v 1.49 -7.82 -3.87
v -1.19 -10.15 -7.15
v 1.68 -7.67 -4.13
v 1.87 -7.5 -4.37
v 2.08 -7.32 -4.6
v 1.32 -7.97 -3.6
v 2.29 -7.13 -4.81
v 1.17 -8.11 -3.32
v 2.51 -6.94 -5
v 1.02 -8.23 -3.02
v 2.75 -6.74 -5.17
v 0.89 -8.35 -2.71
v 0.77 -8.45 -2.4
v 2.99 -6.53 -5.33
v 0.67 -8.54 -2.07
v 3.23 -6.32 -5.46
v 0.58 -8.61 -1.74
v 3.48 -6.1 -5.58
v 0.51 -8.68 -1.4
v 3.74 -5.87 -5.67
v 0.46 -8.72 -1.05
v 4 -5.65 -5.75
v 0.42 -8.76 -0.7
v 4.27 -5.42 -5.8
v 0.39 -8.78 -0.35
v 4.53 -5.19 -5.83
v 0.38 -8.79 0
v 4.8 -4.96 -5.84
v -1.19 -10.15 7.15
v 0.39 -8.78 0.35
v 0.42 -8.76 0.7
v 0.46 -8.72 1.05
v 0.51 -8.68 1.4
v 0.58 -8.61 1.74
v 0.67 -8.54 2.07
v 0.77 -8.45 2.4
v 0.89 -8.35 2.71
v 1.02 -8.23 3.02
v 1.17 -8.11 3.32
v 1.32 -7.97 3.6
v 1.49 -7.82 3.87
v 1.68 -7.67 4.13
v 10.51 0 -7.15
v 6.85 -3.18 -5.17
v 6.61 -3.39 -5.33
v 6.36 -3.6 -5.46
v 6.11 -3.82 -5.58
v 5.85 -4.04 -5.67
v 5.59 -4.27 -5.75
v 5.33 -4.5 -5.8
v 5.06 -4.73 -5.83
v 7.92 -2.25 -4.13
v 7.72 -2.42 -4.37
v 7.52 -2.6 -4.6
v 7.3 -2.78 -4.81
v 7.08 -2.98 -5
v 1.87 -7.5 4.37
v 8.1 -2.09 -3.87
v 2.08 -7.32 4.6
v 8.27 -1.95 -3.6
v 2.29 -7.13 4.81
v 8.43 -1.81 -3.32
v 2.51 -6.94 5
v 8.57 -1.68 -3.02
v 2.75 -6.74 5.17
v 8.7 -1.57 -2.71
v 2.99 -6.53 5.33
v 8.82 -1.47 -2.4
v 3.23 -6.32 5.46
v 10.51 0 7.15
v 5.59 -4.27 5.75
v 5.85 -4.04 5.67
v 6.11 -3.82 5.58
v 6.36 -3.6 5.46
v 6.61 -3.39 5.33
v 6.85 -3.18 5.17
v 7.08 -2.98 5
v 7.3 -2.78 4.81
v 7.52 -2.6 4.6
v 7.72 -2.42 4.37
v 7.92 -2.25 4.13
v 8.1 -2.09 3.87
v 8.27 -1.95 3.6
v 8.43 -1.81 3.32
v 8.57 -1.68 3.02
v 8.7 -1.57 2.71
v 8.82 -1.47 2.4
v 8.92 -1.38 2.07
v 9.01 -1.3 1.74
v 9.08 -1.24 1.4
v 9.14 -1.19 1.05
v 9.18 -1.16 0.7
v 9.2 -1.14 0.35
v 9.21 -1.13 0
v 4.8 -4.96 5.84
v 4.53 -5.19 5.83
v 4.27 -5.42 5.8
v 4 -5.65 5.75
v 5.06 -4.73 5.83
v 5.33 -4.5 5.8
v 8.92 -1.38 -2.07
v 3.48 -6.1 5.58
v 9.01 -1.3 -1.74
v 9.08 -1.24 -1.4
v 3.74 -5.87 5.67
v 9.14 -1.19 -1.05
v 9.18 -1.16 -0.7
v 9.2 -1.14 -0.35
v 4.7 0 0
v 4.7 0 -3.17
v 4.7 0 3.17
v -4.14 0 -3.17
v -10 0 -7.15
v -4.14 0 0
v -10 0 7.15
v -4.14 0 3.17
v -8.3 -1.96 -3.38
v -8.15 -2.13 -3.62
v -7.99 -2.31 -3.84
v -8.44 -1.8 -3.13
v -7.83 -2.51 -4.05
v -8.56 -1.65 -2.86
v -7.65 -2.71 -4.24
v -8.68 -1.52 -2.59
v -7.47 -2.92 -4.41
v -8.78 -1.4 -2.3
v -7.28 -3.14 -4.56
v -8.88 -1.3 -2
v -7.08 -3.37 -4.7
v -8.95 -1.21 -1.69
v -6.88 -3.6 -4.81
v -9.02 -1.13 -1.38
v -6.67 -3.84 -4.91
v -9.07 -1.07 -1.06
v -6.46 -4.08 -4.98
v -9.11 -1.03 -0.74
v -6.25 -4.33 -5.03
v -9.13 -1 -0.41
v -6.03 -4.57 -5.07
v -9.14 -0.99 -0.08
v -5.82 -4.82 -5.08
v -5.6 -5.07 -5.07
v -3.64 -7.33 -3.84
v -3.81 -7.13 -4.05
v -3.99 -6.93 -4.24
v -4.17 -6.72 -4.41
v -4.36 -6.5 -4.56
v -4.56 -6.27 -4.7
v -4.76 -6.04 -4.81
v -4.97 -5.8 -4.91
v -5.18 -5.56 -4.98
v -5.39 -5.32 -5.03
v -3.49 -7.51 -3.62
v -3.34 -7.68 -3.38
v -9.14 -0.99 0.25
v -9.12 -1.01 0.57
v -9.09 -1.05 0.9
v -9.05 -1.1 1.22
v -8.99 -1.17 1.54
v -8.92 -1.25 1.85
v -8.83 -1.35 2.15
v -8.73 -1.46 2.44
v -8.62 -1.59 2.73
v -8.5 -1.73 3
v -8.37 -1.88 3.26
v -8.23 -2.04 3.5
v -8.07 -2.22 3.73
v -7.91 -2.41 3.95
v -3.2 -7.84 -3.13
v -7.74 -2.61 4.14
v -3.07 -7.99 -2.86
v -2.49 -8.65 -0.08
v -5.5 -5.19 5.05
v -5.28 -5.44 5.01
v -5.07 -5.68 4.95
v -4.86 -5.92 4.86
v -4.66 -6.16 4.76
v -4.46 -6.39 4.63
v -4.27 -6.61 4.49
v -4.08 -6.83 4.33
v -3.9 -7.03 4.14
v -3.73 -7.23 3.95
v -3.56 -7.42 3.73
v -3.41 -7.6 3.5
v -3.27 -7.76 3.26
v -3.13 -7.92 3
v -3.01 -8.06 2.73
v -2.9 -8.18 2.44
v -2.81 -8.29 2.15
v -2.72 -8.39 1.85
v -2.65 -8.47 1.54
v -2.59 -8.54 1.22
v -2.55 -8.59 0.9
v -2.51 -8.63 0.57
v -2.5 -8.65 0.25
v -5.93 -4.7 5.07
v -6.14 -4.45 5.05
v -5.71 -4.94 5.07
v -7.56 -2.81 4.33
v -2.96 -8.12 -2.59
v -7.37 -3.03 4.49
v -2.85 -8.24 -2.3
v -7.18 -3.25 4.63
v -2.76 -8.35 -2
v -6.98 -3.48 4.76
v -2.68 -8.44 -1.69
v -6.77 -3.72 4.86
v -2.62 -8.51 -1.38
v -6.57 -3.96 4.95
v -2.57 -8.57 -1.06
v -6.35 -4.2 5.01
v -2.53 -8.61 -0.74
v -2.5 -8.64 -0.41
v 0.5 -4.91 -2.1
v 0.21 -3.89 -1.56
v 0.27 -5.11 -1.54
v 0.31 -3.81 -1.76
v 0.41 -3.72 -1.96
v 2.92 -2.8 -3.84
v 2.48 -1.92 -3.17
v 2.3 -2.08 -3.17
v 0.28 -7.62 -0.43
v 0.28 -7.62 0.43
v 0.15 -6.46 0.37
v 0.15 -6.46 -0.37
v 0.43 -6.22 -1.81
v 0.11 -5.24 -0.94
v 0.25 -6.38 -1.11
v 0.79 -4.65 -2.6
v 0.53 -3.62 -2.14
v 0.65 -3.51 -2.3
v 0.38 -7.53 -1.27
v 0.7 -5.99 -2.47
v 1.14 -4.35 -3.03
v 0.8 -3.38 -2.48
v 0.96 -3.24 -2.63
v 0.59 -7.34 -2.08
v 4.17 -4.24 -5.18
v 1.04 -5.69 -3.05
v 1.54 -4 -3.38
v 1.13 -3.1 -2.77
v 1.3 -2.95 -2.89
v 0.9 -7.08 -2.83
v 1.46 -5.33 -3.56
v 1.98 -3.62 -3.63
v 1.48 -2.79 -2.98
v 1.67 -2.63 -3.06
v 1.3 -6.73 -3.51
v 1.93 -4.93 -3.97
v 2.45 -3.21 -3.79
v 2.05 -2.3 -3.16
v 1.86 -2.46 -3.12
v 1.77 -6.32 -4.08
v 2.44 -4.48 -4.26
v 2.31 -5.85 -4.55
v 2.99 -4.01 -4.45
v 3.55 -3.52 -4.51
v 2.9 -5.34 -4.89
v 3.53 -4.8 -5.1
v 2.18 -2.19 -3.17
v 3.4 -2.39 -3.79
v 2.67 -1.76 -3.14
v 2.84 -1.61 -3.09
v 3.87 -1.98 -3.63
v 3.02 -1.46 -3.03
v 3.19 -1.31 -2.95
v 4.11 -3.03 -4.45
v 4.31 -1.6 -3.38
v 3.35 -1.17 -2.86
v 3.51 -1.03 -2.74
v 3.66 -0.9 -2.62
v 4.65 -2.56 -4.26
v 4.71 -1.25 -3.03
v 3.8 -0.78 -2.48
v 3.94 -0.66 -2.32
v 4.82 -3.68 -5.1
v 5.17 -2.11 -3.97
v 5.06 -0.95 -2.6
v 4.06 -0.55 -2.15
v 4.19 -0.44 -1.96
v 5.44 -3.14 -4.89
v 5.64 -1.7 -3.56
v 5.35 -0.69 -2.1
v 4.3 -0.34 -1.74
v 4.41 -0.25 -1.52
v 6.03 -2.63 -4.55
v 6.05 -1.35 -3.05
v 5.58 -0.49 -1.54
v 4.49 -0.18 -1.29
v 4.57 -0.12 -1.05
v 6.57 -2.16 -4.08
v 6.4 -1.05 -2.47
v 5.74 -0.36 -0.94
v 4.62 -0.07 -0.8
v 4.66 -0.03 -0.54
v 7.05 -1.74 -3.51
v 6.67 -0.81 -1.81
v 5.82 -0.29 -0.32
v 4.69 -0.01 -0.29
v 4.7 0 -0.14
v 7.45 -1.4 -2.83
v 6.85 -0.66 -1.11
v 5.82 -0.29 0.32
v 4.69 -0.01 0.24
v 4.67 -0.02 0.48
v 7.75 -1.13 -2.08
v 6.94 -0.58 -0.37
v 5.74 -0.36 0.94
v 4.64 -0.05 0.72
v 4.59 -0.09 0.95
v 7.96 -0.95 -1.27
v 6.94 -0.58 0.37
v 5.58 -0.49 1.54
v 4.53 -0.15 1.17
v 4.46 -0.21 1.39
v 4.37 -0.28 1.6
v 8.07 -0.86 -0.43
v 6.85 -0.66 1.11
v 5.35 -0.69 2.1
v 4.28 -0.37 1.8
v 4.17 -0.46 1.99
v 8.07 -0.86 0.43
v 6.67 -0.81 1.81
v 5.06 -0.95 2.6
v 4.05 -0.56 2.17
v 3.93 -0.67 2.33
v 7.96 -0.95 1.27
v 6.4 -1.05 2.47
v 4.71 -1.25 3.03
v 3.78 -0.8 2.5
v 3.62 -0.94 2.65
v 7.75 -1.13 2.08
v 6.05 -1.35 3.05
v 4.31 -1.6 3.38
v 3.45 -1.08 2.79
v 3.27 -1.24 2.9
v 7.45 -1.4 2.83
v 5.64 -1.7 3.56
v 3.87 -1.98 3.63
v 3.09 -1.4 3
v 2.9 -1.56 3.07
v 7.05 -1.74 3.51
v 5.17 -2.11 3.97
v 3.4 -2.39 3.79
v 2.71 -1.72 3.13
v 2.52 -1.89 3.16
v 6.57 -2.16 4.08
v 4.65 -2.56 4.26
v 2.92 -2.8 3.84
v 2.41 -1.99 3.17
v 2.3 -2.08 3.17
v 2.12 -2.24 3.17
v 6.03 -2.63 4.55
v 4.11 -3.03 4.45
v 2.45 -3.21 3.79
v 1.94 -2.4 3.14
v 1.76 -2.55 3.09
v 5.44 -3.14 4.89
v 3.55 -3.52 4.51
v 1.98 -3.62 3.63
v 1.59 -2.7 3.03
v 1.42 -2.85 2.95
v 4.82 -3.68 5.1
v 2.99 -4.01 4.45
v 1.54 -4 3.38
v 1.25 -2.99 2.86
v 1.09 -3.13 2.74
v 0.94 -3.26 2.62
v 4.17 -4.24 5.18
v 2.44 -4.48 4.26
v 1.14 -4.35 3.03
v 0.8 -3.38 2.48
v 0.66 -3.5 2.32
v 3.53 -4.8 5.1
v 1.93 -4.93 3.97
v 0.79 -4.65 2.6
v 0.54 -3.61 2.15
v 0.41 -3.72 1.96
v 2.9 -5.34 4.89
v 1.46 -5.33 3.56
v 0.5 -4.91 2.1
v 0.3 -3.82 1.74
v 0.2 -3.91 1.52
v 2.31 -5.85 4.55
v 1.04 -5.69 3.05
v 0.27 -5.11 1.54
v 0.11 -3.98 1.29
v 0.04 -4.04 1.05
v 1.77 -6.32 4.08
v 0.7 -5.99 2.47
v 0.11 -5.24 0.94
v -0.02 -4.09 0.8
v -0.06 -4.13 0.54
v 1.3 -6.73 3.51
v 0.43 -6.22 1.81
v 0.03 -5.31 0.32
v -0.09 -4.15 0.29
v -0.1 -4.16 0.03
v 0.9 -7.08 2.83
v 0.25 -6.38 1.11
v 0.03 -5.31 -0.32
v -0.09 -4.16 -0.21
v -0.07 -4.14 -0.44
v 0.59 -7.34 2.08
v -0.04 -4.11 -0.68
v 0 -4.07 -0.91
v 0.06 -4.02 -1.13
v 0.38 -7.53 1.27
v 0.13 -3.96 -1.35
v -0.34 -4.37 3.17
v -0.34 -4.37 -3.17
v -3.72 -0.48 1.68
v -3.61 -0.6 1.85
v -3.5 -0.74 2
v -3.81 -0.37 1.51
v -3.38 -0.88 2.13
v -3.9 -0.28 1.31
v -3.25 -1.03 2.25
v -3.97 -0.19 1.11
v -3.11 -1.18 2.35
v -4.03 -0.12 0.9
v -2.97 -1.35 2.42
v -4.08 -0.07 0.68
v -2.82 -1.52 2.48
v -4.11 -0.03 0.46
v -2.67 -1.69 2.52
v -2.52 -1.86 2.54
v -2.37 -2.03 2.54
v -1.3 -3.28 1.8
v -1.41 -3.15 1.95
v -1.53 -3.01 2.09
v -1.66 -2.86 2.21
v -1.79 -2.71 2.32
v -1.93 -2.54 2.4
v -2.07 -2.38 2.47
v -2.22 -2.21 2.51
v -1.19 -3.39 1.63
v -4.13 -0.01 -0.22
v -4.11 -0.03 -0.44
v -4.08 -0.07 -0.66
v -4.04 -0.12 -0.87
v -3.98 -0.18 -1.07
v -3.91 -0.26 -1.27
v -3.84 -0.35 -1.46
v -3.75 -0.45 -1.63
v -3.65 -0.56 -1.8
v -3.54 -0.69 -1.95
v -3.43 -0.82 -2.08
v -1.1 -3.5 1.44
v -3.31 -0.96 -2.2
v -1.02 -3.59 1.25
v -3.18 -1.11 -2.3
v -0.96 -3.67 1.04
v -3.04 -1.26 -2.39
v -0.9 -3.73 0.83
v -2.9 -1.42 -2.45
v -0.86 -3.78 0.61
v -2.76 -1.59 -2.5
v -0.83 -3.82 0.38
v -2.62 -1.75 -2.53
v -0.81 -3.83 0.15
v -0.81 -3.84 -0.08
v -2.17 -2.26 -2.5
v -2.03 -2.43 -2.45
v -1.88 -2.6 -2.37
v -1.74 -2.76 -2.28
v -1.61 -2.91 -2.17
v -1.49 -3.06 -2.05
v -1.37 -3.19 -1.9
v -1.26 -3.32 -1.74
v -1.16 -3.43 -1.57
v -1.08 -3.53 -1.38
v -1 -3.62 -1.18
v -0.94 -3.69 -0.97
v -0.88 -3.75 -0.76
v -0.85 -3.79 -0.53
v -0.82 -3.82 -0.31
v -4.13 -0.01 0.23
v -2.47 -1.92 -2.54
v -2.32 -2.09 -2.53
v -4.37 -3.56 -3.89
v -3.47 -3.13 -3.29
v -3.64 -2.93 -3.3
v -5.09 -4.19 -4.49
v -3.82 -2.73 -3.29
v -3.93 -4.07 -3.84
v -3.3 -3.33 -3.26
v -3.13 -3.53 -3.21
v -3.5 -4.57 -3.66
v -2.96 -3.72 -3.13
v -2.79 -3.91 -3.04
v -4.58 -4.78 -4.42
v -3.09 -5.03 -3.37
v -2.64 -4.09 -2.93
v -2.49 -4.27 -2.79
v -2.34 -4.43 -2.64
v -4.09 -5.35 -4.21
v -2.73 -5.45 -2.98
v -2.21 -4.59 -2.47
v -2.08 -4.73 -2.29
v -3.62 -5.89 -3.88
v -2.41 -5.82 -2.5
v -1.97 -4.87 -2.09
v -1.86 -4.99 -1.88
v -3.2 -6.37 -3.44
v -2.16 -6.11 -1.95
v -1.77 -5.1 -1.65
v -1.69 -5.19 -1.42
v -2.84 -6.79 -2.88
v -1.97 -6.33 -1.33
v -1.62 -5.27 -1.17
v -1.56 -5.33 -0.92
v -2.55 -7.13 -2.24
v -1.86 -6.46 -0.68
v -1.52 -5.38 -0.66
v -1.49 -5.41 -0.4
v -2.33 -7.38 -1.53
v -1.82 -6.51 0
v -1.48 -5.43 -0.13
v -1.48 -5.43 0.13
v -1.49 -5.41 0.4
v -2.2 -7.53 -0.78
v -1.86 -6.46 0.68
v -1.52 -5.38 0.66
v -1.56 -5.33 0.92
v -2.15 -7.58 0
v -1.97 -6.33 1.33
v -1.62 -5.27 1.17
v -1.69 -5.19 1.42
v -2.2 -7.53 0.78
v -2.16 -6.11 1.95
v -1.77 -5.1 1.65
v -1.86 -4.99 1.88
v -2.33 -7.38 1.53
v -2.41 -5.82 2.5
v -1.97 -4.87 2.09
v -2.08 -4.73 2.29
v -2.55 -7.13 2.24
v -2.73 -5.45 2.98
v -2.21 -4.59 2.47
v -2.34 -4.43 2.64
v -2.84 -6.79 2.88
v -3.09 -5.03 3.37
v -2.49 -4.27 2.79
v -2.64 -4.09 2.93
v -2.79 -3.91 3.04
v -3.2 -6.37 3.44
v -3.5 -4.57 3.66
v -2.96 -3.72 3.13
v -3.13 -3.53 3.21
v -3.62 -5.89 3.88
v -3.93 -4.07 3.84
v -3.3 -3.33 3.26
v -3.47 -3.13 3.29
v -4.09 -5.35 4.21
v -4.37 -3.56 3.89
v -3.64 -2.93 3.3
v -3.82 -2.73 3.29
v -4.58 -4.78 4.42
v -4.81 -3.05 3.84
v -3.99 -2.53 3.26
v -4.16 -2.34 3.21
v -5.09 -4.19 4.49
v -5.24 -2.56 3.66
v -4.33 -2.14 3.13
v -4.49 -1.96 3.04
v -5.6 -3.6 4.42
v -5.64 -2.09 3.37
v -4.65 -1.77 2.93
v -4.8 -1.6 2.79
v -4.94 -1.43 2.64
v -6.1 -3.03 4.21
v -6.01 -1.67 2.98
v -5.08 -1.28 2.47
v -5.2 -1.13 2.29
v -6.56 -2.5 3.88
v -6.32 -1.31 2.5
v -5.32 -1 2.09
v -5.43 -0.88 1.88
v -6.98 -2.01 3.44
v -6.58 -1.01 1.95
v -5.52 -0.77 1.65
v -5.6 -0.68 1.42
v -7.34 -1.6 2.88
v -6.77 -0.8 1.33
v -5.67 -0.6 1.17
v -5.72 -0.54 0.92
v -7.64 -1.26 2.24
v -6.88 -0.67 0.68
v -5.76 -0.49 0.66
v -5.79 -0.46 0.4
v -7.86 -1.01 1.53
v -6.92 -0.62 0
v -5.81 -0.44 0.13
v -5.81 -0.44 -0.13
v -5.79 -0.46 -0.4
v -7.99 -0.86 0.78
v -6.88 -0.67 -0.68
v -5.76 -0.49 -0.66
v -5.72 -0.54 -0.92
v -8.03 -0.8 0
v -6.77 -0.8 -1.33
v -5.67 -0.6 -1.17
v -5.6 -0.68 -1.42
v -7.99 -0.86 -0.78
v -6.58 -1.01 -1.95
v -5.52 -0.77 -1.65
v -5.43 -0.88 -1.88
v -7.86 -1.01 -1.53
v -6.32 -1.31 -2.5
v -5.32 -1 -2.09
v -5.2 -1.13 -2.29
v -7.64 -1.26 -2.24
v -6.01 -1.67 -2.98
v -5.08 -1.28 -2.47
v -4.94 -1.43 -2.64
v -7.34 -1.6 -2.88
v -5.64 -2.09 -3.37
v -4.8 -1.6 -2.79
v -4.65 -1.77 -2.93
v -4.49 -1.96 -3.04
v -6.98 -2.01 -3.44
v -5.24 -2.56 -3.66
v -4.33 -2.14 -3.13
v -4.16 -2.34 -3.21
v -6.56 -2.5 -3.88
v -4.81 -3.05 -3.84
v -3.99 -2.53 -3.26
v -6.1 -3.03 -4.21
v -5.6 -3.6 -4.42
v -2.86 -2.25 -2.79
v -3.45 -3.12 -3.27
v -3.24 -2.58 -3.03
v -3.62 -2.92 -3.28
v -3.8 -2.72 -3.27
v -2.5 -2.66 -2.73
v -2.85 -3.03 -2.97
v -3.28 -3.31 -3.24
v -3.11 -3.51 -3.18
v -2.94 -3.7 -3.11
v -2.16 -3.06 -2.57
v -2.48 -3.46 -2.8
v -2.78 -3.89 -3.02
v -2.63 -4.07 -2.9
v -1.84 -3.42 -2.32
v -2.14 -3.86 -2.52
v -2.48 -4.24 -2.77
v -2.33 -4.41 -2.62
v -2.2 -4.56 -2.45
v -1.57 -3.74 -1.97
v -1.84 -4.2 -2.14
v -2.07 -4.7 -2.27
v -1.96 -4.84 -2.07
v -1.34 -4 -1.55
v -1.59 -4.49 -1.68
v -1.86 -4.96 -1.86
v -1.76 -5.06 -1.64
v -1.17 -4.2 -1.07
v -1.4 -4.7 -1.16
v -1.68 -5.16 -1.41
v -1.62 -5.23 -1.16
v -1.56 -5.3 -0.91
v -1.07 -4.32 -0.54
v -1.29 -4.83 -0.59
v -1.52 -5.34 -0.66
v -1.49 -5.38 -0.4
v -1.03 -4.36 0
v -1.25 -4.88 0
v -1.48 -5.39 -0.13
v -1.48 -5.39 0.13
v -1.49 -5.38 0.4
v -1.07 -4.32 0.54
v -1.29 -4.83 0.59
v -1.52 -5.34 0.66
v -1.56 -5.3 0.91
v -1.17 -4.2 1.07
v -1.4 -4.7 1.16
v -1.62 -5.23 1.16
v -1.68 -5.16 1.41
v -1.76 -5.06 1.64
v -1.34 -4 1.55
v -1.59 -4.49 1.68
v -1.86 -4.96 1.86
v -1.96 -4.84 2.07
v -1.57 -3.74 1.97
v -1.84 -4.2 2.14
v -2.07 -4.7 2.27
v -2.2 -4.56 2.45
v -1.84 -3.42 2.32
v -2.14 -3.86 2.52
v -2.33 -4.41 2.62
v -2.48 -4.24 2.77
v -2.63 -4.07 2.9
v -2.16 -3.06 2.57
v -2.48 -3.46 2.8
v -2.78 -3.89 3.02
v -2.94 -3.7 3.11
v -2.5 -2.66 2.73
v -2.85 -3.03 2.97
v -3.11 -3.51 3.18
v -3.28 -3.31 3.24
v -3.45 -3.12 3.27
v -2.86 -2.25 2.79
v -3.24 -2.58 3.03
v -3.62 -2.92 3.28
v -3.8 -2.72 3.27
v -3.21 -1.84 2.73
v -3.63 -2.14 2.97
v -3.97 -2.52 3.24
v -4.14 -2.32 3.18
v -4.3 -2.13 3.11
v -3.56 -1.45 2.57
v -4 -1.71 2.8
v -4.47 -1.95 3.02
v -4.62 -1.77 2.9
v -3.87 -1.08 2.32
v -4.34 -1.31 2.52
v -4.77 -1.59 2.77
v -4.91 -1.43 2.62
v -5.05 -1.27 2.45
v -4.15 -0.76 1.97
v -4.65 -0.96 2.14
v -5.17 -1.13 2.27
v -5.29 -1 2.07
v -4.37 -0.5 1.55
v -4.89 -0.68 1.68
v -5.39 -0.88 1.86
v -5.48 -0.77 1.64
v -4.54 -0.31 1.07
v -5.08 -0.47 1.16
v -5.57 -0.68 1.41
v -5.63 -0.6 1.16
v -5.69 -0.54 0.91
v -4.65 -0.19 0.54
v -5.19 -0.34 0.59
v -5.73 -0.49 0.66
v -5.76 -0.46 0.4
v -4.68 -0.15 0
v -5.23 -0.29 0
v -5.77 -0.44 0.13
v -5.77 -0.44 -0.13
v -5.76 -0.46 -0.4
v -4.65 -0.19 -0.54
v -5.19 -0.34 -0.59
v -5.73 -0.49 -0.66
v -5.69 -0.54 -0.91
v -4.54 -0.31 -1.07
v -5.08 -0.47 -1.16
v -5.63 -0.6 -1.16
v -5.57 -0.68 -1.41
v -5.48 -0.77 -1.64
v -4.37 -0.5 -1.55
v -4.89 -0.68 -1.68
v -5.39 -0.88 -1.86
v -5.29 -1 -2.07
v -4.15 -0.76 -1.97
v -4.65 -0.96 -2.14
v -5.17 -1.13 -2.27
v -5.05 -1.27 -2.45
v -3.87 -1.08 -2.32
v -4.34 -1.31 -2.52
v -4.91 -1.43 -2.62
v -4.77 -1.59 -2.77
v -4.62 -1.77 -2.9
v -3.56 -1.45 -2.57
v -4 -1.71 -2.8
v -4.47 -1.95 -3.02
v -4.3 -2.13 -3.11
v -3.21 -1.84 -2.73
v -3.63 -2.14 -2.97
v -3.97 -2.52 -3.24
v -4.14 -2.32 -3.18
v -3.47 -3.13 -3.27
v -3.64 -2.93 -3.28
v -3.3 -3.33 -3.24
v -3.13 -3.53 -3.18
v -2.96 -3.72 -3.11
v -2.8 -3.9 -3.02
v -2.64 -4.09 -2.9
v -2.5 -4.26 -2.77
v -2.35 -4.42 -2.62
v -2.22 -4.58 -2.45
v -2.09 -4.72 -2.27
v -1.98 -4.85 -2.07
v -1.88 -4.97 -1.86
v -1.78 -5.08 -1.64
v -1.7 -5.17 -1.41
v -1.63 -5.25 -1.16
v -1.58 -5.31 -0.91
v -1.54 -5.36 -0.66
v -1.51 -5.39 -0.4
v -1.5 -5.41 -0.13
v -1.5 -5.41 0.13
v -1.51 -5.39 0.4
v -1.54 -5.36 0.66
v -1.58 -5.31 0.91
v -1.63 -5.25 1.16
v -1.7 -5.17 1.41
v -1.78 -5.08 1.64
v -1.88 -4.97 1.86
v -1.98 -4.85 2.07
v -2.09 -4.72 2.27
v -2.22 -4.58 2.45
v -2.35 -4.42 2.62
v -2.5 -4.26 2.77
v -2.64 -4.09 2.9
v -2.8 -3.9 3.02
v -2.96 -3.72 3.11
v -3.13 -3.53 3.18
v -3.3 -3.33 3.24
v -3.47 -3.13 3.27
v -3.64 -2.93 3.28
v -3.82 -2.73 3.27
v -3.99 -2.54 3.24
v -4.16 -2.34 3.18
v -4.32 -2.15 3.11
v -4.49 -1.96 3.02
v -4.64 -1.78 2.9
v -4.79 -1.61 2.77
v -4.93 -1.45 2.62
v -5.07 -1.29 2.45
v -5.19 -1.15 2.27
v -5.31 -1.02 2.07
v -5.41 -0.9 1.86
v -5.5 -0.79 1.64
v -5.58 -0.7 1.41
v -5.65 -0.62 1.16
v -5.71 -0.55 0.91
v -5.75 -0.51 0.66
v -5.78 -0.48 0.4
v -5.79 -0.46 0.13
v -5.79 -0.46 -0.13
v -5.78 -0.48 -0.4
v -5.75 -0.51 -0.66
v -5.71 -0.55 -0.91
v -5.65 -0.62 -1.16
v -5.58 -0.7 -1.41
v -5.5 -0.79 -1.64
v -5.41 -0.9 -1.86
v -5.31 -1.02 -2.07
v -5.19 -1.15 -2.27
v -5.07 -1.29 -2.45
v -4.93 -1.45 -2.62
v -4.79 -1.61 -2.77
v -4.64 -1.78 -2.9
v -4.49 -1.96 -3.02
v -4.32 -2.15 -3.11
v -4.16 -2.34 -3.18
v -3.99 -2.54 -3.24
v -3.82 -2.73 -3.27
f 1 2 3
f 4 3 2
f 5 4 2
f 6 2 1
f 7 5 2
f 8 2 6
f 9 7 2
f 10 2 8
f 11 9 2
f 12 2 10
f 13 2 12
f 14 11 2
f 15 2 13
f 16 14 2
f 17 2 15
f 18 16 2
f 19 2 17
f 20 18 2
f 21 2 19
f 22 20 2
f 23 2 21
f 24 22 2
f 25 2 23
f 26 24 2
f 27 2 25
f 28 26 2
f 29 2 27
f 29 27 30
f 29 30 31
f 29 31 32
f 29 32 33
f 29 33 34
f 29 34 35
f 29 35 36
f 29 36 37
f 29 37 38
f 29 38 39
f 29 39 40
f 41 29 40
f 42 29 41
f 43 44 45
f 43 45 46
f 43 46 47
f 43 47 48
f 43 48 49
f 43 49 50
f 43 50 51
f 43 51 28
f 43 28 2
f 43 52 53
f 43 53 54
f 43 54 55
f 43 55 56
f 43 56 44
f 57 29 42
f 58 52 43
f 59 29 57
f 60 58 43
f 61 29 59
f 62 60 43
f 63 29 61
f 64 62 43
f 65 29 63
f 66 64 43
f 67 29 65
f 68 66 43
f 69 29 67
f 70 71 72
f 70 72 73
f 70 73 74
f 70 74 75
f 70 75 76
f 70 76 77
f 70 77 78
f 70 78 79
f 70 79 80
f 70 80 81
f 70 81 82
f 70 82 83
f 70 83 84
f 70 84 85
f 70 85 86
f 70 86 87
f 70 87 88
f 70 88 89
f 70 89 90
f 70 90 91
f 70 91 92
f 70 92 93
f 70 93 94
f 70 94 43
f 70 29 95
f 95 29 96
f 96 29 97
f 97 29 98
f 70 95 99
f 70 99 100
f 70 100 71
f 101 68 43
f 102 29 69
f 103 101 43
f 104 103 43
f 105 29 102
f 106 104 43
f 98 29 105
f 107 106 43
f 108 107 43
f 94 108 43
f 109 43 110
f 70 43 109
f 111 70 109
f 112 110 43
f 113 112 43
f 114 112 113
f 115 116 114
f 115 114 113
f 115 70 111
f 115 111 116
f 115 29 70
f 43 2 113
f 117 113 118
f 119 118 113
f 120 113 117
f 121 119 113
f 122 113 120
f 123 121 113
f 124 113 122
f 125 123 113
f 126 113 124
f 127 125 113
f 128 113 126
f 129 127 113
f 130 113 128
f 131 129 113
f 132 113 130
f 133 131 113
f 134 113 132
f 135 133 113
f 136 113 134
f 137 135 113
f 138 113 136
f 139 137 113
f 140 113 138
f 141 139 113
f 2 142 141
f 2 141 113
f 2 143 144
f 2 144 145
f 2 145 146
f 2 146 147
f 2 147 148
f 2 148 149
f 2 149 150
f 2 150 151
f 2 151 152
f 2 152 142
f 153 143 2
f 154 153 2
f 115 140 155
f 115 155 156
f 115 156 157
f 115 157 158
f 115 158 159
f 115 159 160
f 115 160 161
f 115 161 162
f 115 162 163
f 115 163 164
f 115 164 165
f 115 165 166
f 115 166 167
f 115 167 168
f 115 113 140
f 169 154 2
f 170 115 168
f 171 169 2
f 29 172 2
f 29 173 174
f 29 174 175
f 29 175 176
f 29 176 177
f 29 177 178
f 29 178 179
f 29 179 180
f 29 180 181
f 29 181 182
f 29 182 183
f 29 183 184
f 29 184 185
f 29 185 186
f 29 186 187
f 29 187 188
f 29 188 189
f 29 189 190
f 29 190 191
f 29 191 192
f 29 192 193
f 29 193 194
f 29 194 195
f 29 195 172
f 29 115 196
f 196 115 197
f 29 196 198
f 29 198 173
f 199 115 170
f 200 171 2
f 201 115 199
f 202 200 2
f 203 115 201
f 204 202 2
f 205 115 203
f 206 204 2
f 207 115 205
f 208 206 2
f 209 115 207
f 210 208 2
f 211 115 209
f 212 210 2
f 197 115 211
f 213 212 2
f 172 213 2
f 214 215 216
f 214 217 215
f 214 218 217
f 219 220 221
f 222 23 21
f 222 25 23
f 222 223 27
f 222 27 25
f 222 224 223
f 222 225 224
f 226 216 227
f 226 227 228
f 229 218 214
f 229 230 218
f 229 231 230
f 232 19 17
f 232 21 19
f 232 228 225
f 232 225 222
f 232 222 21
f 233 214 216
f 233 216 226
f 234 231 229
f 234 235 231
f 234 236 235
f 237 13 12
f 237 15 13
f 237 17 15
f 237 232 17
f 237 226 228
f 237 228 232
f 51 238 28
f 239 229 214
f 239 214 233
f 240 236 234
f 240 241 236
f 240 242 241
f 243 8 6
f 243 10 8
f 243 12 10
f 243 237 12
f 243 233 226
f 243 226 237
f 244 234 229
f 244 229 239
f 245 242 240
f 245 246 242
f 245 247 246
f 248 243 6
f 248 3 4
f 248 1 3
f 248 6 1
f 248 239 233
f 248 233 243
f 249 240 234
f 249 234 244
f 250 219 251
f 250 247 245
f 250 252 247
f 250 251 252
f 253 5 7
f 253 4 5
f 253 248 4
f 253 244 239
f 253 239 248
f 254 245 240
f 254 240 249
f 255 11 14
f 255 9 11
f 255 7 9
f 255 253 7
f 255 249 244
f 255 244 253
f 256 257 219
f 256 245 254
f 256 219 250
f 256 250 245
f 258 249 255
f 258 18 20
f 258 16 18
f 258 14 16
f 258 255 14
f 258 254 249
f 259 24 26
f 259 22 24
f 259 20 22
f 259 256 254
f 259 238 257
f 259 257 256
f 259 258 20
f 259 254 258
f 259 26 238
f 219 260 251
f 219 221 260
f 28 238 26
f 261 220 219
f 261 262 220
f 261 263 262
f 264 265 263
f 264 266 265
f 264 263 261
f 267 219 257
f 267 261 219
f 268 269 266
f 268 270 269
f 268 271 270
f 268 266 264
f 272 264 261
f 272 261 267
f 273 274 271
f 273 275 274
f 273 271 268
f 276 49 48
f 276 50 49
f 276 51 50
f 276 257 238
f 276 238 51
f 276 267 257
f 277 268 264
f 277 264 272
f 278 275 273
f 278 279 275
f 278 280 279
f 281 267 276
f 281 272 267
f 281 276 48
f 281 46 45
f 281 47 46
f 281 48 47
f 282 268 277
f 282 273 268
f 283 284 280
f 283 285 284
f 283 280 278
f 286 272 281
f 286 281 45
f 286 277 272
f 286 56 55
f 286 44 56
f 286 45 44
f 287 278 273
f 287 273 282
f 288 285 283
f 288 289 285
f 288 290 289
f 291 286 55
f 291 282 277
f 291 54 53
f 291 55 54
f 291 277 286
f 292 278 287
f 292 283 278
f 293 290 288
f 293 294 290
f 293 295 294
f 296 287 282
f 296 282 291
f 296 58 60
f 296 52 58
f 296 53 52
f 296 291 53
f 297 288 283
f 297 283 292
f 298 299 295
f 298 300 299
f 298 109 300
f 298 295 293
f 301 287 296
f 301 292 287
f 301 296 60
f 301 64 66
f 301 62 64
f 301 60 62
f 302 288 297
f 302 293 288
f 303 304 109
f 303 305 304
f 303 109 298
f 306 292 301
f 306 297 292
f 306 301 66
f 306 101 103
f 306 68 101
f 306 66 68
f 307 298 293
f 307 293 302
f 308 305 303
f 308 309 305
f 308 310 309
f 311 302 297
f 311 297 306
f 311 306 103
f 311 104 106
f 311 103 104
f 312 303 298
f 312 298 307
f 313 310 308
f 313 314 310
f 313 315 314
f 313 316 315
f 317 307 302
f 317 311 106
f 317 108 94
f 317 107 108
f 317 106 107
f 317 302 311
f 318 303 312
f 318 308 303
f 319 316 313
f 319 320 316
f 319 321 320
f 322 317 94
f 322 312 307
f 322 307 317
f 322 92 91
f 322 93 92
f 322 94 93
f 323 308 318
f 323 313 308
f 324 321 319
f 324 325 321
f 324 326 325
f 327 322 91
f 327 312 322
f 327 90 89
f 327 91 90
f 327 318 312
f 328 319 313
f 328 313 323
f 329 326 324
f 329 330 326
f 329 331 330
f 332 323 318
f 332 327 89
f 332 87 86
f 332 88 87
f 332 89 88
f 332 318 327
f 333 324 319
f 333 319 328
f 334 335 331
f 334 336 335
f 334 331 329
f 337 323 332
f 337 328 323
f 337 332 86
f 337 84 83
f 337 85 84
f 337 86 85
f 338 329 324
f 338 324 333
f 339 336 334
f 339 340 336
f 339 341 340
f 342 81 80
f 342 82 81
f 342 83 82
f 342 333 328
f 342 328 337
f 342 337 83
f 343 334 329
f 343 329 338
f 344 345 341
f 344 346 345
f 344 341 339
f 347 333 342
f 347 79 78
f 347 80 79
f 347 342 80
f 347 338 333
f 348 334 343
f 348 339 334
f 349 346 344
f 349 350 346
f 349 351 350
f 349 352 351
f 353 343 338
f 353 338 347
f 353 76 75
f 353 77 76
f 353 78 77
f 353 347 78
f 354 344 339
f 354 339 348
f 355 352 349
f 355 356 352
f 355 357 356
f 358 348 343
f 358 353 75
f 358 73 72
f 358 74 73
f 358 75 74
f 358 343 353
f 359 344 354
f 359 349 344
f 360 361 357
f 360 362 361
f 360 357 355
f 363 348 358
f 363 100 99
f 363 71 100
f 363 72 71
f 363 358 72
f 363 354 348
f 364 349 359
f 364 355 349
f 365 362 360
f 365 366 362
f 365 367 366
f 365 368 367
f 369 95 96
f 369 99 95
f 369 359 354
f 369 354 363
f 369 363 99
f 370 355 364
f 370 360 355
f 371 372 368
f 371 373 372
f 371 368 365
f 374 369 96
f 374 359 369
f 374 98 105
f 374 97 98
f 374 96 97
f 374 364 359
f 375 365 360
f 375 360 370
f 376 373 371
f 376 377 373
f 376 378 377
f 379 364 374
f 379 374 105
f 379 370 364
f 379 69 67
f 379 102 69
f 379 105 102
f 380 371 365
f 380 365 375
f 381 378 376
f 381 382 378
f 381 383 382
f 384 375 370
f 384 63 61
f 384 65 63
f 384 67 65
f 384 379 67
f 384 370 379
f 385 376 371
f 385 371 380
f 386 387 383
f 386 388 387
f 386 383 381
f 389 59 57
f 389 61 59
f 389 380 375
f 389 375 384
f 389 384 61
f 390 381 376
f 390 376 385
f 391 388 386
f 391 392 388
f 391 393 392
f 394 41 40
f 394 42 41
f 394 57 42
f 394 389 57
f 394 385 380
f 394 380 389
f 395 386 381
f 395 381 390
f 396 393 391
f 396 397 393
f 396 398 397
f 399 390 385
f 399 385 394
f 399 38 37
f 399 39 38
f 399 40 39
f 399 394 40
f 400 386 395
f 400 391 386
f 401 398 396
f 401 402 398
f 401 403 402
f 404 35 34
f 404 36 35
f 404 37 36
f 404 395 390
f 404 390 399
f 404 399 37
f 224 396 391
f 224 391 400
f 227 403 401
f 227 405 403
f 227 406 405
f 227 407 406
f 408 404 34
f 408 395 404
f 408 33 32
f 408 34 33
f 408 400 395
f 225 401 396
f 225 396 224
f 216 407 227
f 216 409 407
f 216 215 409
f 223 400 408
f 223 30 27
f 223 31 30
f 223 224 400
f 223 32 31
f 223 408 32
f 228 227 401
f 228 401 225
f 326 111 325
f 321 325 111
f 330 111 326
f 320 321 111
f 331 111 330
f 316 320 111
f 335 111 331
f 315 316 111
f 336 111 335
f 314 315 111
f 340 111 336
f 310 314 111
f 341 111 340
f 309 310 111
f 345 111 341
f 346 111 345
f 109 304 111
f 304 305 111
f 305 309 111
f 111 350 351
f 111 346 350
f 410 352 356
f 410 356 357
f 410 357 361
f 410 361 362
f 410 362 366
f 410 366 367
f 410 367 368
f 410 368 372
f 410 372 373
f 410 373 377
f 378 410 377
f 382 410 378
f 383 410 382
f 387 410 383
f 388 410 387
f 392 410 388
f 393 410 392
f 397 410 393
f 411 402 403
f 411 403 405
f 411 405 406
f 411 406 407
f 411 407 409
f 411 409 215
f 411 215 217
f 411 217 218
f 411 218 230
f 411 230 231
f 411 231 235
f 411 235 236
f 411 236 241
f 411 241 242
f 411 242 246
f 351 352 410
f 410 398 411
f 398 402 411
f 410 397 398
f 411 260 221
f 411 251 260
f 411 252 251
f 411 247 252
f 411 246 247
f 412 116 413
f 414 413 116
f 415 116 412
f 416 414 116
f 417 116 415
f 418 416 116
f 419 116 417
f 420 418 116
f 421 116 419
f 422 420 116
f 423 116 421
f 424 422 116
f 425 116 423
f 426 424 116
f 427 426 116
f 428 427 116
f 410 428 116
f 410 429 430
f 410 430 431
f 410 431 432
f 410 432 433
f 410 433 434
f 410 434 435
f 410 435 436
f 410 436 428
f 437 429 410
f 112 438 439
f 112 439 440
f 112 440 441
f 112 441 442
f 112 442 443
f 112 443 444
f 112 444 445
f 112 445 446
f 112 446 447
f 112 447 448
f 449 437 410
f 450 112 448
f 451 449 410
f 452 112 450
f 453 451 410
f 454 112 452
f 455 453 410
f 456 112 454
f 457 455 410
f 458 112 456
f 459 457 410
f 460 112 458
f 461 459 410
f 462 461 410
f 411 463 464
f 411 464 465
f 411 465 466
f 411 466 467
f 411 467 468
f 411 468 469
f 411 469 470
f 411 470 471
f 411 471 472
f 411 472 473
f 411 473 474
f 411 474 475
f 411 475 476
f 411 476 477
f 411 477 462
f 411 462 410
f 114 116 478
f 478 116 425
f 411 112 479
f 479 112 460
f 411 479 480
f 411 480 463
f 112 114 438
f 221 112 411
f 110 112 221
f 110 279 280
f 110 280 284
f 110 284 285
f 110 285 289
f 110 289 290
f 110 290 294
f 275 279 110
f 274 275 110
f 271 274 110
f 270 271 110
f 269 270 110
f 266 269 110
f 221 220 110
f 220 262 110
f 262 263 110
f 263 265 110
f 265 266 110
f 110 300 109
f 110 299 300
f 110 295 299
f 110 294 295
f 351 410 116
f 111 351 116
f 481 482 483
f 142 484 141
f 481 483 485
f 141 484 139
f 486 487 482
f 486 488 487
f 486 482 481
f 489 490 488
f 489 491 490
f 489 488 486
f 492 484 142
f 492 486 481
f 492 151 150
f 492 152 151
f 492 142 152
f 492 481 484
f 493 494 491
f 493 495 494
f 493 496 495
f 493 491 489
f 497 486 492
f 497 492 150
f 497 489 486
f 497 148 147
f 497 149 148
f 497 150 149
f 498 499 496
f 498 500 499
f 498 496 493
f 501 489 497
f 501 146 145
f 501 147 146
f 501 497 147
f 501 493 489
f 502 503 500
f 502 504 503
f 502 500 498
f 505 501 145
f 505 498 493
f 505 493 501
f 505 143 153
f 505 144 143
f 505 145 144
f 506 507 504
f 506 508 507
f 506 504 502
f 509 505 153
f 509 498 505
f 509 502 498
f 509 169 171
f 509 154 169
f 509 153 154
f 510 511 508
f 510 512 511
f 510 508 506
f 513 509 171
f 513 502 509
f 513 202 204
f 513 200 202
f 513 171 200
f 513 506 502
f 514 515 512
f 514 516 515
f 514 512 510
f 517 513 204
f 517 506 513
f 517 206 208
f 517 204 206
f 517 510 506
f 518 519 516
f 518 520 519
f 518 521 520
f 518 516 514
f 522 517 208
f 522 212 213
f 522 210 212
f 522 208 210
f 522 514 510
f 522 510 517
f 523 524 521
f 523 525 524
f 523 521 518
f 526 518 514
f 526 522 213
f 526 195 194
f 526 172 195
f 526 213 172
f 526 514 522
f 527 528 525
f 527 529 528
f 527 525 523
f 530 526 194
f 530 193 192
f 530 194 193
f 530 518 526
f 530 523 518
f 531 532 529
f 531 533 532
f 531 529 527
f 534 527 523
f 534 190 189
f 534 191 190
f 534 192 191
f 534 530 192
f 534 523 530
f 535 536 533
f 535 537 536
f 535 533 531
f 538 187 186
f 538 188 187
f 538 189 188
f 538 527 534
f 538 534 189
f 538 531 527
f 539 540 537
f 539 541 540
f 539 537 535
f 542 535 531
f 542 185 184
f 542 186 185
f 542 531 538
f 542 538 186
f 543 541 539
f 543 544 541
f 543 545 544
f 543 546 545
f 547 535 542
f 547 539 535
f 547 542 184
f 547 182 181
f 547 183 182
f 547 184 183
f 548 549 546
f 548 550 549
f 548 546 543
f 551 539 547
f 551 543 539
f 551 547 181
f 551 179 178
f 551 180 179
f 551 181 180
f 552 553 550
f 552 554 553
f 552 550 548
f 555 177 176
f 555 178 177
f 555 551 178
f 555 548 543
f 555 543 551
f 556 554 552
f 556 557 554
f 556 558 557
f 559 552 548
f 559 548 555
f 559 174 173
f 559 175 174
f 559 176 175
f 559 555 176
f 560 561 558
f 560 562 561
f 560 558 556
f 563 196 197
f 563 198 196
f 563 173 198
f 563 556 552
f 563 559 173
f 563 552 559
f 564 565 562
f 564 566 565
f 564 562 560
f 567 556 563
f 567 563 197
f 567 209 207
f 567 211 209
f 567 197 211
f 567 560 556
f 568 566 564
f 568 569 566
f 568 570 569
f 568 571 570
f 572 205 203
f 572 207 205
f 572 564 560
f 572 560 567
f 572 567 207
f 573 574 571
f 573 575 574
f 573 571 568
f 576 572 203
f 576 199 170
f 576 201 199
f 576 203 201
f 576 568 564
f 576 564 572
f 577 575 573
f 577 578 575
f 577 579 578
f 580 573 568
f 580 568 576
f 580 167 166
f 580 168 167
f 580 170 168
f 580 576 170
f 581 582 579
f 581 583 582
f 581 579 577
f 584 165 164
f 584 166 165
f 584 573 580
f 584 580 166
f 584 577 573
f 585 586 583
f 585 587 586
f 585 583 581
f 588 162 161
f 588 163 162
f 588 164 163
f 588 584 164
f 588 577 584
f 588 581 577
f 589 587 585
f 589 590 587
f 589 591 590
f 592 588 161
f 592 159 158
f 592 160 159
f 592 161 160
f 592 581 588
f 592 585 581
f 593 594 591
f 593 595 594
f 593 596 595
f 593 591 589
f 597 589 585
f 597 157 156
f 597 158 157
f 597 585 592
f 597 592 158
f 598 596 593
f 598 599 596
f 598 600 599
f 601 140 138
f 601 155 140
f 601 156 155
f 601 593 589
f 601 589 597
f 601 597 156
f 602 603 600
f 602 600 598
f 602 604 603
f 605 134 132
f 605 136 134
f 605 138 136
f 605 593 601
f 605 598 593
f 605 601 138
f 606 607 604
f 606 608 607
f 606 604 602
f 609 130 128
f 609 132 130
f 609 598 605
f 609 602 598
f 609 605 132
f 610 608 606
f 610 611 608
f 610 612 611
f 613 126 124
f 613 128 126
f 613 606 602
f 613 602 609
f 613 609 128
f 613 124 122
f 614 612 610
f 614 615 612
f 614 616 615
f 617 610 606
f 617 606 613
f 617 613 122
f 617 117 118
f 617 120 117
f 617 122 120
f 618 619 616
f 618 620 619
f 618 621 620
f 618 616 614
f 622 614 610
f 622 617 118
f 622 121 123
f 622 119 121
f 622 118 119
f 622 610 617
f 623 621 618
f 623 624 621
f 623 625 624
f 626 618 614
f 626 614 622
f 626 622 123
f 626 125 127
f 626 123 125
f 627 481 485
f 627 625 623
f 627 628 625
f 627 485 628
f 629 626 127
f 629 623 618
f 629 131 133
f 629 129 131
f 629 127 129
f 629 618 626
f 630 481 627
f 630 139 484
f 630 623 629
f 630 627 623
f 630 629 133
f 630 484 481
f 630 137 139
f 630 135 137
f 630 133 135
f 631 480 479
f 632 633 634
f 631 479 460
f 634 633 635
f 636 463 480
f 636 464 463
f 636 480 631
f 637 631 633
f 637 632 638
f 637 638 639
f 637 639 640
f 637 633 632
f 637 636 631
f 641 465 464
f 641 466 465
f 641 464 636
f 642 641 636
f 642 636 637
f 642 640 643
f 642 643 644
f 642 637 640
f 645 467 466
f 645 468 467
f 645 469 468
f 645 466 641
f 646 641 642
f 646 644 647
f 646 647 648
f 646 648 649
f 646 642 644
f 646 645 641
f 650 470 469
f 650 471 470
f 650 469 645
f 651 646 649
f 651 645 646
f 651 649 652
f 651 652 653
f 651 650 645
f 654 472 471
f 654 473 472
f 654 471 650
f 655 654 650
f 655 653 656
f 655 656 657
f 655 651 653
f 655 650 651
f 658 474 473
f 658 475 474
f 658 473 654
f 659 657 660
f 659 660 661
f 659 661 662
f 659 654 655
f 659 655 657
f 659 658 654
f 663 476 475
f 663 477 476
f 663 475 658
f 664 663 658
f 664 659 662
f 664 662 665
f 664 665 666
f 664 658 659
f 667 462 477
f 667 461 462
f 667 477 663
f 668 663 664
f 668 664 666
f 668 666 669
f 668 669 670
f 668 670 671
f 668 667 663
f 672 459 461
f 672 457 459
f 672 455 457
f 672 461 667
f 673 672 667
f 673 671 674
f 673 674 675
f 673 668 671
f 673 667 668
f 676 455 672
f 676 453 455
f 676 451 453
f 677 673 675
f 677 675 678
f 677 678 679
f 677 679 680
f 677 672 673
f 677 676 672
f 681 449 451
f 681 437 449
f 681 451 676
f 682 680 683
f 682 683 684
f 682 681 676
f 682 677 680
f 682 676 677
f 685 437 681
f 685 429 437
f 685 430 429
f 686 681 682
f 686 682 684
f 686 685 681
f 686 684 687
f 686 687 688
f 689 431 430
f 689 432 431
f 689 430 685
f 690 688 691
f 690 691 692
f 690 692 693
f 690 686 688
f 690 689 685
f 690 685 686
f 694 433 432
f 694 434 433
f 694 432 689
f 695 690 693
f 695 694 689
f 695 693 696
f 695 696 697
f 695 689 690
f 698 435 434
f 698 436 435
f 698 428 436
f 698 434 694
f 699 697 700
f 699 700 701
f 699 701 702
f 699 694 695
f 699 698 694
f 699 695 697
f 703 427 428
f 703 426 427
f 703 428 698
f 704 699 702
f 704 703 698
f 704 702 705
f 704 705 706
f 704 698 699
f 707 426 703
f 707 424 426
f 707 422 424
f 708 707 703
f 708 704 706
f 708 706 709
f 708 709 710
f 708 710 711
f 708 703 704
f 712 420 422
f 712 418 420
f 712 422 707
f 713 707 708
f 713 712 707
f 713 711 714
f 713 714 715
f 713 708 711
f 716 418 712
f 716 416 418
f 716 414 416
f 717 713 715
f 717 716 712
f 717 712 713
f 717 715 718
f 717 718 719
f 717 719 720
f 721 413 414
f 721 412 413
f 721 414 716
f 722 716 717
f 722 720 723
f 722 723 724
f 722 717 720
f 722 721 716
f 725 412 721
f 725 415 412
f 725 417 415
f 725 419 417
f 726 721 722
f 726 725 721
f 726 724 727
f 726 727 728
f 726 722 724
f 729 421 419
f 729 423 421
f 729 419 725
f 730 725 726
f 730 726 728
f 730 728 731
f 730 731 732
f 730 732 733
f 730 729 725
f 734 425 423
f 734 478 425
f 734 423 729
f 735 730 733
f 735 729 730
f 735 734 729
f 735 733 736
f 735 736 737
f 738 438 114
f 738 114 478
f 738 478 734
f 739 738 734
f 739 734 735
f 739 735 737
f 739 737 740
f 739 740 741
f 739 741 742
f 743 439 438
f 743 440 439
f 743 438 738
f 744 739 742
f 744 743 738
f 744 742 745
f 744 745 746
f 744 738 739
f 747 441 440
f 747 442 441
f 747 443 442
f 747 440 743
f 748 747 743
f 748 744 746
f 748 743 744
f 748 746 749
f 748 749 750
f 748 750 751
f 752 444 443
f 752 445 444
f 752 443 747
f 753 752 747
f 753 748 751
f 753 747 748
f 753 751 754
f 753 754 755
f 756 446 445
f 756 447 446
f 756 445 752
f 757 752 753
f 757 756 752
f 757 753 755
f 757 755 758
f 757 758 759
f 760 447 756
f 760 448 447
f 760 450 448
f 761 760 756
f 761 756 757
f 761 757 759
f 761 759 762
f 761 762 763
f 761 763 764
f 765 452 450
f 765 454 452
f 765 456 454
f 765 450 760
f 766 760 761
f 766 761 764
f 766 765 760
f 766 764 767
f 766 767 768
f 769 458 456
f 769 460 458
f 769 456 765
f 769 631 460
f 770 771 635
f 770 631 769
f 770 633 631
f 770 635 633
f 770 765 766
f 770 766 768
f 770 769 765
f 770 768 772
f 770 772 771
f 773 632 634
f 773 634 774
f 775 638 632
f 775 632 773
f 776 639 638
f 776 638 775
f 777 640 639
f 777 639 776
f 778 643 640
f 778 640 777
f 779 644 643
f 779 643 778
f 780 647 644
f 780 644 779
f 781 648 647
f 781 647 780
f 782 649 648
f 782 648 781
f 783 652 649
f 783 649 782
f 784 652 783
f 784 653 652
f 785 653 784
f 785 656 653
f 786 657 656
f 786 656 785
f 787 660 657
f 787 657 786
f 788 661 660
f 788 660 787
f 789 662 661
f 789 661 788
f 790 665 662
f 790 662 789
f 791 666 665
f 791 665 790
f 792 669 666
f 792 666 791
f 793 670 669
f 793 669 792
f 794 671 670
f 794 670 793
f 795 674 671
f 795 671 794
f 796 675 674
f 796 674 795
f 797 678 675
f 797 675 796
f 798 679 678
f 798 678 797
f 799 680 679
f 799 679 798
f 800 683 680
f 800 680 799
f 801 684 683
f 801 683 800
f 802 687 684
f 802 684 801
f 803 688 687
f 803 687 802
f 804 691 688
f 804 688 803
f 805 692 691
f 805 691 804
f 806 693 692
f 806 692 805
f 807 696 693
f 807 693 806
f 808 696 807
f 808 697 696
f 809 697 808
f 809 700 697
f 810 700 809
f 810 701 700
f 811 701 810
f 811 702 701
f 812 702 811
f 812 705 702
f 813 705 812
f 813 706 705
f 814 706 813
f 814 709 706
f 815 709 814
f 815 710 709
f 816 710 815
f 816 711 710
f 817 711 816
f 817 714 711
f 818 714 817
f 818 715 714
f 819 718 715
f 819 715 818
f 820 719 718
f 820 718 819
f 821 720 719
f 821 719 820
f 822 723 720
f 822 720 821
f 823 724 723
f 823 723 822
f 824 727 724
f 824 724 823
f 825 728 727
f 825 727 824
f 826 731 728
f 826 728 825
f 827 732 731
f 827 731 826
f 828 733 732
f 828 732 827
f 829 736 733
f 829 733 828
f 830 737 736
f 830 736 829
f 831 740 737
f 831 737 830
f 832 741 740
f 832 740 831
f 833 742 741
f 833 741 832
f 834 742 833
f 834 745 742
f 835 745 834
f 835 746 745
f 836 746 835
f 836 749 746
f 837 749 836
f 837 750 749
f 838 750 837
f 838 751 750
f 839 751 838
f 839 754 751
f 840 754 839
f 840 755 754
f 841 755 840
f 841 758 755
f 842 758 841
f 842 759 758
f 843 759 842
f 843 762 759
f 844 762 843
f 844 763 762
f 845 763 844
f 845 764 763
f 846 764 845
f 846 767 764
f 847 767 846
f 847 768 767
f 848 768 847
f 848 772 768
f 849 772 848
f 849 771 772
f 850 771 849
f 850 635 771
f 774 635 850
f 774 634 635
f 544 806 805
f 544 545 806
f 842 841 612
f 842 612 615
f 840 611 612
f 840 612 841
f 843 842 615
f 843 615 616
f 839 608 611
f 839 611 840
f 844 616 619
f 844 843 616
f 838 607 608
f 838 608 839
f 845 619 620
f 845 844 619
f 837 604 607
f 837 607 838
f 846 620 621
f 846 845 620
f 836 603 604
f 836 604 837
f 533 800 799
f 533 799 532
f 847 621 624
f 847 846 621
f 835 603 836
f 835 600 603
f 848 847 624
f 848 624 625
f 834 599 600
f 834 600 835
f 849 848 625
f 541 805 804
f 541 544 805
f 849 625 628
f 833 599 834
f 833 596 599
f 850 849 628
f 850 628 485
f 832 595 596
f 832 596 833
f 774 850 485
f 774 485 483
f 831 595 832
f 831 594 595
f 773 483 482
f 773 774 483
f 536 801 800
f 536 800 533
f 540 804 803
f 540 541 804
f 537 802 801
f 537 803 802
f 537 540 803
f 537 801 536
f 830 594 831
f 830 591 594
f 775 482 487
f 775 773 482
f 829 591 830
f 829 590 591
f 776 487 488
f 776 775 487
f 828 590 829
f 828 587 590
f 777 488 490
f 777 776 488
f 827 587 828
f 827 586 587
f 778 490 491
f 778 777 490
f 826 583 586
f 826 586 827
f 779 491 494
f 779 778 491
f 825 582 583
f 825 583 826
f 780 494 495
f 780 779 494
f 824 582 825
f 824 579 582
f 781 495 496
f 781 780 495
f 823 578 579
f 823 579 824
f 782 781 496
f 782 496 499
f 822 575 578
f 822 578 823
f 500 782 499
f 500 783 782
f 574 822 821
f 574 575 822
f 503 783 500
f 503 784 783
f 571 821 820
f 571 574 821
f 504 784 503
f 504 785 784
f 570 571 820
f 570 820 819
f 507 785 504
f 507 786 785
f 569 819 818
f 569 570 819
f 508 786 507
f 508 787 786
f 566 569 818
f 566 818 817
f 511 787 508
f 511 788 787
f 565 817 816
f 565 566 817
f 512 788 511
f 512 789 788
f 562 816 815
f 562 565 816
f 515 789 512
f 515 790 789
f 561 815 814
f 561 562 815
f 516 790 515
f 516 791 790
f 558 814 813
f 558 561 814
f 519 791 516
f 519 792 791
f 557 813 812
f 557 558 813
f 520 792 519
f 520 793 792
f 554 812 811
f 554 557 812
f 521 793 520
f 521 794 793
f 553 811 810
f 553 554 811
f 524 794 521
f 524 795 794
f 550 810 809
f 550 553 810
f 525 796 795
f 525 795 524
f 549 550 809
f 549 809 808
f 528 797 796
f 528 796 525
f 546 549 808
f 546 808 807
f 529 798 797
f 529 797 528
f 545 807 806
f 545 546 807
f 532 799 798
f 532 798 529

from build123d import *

# Parameters (mm, degrees)
BOSS_EXTRUDE1_START = -7.151569
BOSS_EXTRUDE1_DEPTH = 14.303137569
CAVITY3_START       = -3.125287666
CAVITY3_DEPTH       = 9.3420001
CAVITY3_START_2     = -7.554089613
CAVITY3_2_OUTLINE_R = 3.278779553
CAVITY3_2_DEPTH     = 2.904801847
CAVITY3_START_3     = 0.374712334
CAVITY3_3_DEPTH     = 2.960969152
CAVITY3_START_4     = -3.175
CAVITY3_4_DEPTH     = 6.35


with BuildPart() as part:
    # Sketch1 → Boss-Extrude1 (new body)
    with BuildSketch(Plane.XY.offset(BOSS_EXTRUDE1_START)):
        Polygon((-10, 0), (10.513602901, 0), (-1.192334822, -10.153914519), align=None)
    extrude(amount=BOSS_EXTRUDE1_DEPTH)

    # Cavity3: read off the stored shape, not the designer's step
    # Cavity3 outline → Cavity3 (cut)
    with BuildSketch(Plane(origin=(0, 0, 0), x_dir=(0.6552536158947596, -0.7554089613294528, 0), z_dir=(0.7554089613294528, 0.6552536158947598, 0)).offset(CAVITY3_START)):
        with BuildLine():
            Line((3.079076317, -3.175), (3.079076317, 3.175))
            Line((3.079076317, 3.175), (-0.989318671, 3.175))
            ThreePointArc((-0.989318671, 3.175), (-3.449703236, 0), (-0.989318671, -3.175))
            Line((-0.989318671, -3.175), (3.079076317, -3.175))
        make_face()
    extrude(amount=CAVITY3_DEPTH, mode=Mode.SUBTRACT)

    # Cavity3 2 outline → Cavity3 2 (cut)
    with BuildSketch(Plane(origin=(0, 0, 0), x_dir=(0.6552536158947596, -0.7554089613294528, 0), z_dir=(0.7554089613294528, 0.6552536158947598, 0)).offset(CAVITY3_START_2)):
        with Locations((-0.170923683, 0)):
            Circle(CAVITY3_2_OUTLINE_R)
    extrude(amount=CAVITY3_2_DEPTH, mode=Mode.SUBTRACT)

    # Cavity3 3 outline → Cavity3 3 (cut)
    with BuildSketch(Plane(origin=(0, 0, 0), x_dir=(0.6552536158947596, -0.7554089613294528, 0), z_dir=(0.7554089613294528, 0.6552536158947598, 0)).offset(CAVITY3_START_3)):
        with BuildLine():
            Line((3.079076317, 0.433468981), (3.079076317, -0.433468981))
            ThreePointArc((3.079076317, -0.433468981), (3.10785587, 0), (3.079076317, 0.433468981))
        make_face()
    extrude(amount=CAVITY3_3_DEPTH, mode=Mode.SUBTRACT)

    # Cavity3 4 outline → Cavity3 4 (cut)
    with BuildSketch(Plane.XY.offset(CAVITY3_START_4)):
        Polygon((-0.343294419, -4.373817886), (4.699060398, 0), (-4.137212856, 0), align=None)
    extrude(amount=CAVITY3_4_DEPTH, mode=Mode.SUBTRACT)

    # Cavity3 5: loft between two sections, ruled curve by curve
    cavity3_5_from = [
        Edge.make_three_point_arc((2.300636945, -2.08043023, -3.175), (4.699060398, 0, 0), (2.300636945, -2.08043023, 3.175)),
        Edge.make_three_point_arc((2.300636945, -2.08043023, 3.175), (-0.097786507, -4.160860461, 0), (2.300636945, -2.08043023, -3.175)),
    ]
    cavity3_5_to = [
        Edge.make_three_point_arc((4.797153222, -4.958538373, -5.842), (9.210252374, -1.130546749, 0), (4.797153222, -4.958538373, 5.842)),
        Edge.make_three_point_arc((4.797153222, -4.958538373, 5.842), (0.38405407, -8.786529997, 0), (4.797153222, -4.958538373, -5.842)),
    ]
    cavity3_5 = Solid(Shell([*[Face.make_surface_from_curves(cavity3_5_from[k], cavity3_5_to[k]) for k in range(2)], Face(Wire(cavity3_5_from)), Face(Wire(cavity3_5_to))]))
    add(cavity3_5, mode=Mode.SUBTRACT)

    # Cavity3 6: loft between two sections, ruled curve by curve
    cavity3_6_from = [
        Edge.make_three_point_arc((-3.643299316, -2.933988714, -3.304179553), (-1.478223716, -5.429995558, 0), (-3.643299316, -2.933988714, 3.304179553)),
        Edge.make_three_point_arc((-3.643299316, -2.933988714, 3.304179553), (-5.808374915, -0.43798187, 0), (-3.643299316, -2.933988714, -3.304179553)),
    ]
    cavity3_6_to = [
        Edge.make_three_point_arc((-5.81842535, -4.820727252, -5.075783124), (-2.492500105, -8.655019309, 0), (-5.81842535, -4.820727252, 5.075783124)),
        Edge.make_three_point_arc((-5.81842535, -4.820727252, 5.075783124), (-9.144350595, -0.986435194, 0), (-5.81842535, -4.820727252, -5.075783124)),
    ]
    cavity3_6 = Solid(Shell([*[Face.make_surface_from_curves(cavity3_6_from[k], cavity3_6_to[k]) for k in range(2)], Face(Wire(cavity3_6_from)), Face(Wire(cavity3_6_to))]))
    add(cavity3_6, mode=Mode.SUBTRACT)

    # Cavity3 7: loft between two sections, ruled curve by curve
    cavity3_7_from = [
        Edge.make_three_point_arc((-2.472868671, -1.918738762, -2.54), (-0.808524487, -3.837477524, 0), (-2.472868671, -1.918738762, 2.54)),
        Edge.make_three_point_arc((-2.472868671, -1.918738762, 2.54), (-4.137212855, 0, 0), (-2.472868671, -1.918738762, -2.54)),
    ]
    cavity3_7_to = [
        Edge.make_three_point_arc((-3.624111928, -2.917345272, -3.278779553), (-1.47567977, -5.394164729, 0), (-3.624111928, -2.917345272, 3.278779553)),
        Edge.make_three_point_arc((-3.624111928, -2.917345272, 3.278779553), (-5.772544086, -0.440525816, 0), (-3.624111928, -2.917345272, -3.278779553)),
    ]
    cavity3_7 = Solid(Shell([*[Face.make_surface_from_curves(cavity3_7_from[k], cavity3_7_to[k]) for k in range(2)], Face(Wire(cavity3_7_from)), Face(Wire(cavity3_7_to))]))
    add(cavity3_7, mode=Mode.SUBTRACT)


solid = part.part
